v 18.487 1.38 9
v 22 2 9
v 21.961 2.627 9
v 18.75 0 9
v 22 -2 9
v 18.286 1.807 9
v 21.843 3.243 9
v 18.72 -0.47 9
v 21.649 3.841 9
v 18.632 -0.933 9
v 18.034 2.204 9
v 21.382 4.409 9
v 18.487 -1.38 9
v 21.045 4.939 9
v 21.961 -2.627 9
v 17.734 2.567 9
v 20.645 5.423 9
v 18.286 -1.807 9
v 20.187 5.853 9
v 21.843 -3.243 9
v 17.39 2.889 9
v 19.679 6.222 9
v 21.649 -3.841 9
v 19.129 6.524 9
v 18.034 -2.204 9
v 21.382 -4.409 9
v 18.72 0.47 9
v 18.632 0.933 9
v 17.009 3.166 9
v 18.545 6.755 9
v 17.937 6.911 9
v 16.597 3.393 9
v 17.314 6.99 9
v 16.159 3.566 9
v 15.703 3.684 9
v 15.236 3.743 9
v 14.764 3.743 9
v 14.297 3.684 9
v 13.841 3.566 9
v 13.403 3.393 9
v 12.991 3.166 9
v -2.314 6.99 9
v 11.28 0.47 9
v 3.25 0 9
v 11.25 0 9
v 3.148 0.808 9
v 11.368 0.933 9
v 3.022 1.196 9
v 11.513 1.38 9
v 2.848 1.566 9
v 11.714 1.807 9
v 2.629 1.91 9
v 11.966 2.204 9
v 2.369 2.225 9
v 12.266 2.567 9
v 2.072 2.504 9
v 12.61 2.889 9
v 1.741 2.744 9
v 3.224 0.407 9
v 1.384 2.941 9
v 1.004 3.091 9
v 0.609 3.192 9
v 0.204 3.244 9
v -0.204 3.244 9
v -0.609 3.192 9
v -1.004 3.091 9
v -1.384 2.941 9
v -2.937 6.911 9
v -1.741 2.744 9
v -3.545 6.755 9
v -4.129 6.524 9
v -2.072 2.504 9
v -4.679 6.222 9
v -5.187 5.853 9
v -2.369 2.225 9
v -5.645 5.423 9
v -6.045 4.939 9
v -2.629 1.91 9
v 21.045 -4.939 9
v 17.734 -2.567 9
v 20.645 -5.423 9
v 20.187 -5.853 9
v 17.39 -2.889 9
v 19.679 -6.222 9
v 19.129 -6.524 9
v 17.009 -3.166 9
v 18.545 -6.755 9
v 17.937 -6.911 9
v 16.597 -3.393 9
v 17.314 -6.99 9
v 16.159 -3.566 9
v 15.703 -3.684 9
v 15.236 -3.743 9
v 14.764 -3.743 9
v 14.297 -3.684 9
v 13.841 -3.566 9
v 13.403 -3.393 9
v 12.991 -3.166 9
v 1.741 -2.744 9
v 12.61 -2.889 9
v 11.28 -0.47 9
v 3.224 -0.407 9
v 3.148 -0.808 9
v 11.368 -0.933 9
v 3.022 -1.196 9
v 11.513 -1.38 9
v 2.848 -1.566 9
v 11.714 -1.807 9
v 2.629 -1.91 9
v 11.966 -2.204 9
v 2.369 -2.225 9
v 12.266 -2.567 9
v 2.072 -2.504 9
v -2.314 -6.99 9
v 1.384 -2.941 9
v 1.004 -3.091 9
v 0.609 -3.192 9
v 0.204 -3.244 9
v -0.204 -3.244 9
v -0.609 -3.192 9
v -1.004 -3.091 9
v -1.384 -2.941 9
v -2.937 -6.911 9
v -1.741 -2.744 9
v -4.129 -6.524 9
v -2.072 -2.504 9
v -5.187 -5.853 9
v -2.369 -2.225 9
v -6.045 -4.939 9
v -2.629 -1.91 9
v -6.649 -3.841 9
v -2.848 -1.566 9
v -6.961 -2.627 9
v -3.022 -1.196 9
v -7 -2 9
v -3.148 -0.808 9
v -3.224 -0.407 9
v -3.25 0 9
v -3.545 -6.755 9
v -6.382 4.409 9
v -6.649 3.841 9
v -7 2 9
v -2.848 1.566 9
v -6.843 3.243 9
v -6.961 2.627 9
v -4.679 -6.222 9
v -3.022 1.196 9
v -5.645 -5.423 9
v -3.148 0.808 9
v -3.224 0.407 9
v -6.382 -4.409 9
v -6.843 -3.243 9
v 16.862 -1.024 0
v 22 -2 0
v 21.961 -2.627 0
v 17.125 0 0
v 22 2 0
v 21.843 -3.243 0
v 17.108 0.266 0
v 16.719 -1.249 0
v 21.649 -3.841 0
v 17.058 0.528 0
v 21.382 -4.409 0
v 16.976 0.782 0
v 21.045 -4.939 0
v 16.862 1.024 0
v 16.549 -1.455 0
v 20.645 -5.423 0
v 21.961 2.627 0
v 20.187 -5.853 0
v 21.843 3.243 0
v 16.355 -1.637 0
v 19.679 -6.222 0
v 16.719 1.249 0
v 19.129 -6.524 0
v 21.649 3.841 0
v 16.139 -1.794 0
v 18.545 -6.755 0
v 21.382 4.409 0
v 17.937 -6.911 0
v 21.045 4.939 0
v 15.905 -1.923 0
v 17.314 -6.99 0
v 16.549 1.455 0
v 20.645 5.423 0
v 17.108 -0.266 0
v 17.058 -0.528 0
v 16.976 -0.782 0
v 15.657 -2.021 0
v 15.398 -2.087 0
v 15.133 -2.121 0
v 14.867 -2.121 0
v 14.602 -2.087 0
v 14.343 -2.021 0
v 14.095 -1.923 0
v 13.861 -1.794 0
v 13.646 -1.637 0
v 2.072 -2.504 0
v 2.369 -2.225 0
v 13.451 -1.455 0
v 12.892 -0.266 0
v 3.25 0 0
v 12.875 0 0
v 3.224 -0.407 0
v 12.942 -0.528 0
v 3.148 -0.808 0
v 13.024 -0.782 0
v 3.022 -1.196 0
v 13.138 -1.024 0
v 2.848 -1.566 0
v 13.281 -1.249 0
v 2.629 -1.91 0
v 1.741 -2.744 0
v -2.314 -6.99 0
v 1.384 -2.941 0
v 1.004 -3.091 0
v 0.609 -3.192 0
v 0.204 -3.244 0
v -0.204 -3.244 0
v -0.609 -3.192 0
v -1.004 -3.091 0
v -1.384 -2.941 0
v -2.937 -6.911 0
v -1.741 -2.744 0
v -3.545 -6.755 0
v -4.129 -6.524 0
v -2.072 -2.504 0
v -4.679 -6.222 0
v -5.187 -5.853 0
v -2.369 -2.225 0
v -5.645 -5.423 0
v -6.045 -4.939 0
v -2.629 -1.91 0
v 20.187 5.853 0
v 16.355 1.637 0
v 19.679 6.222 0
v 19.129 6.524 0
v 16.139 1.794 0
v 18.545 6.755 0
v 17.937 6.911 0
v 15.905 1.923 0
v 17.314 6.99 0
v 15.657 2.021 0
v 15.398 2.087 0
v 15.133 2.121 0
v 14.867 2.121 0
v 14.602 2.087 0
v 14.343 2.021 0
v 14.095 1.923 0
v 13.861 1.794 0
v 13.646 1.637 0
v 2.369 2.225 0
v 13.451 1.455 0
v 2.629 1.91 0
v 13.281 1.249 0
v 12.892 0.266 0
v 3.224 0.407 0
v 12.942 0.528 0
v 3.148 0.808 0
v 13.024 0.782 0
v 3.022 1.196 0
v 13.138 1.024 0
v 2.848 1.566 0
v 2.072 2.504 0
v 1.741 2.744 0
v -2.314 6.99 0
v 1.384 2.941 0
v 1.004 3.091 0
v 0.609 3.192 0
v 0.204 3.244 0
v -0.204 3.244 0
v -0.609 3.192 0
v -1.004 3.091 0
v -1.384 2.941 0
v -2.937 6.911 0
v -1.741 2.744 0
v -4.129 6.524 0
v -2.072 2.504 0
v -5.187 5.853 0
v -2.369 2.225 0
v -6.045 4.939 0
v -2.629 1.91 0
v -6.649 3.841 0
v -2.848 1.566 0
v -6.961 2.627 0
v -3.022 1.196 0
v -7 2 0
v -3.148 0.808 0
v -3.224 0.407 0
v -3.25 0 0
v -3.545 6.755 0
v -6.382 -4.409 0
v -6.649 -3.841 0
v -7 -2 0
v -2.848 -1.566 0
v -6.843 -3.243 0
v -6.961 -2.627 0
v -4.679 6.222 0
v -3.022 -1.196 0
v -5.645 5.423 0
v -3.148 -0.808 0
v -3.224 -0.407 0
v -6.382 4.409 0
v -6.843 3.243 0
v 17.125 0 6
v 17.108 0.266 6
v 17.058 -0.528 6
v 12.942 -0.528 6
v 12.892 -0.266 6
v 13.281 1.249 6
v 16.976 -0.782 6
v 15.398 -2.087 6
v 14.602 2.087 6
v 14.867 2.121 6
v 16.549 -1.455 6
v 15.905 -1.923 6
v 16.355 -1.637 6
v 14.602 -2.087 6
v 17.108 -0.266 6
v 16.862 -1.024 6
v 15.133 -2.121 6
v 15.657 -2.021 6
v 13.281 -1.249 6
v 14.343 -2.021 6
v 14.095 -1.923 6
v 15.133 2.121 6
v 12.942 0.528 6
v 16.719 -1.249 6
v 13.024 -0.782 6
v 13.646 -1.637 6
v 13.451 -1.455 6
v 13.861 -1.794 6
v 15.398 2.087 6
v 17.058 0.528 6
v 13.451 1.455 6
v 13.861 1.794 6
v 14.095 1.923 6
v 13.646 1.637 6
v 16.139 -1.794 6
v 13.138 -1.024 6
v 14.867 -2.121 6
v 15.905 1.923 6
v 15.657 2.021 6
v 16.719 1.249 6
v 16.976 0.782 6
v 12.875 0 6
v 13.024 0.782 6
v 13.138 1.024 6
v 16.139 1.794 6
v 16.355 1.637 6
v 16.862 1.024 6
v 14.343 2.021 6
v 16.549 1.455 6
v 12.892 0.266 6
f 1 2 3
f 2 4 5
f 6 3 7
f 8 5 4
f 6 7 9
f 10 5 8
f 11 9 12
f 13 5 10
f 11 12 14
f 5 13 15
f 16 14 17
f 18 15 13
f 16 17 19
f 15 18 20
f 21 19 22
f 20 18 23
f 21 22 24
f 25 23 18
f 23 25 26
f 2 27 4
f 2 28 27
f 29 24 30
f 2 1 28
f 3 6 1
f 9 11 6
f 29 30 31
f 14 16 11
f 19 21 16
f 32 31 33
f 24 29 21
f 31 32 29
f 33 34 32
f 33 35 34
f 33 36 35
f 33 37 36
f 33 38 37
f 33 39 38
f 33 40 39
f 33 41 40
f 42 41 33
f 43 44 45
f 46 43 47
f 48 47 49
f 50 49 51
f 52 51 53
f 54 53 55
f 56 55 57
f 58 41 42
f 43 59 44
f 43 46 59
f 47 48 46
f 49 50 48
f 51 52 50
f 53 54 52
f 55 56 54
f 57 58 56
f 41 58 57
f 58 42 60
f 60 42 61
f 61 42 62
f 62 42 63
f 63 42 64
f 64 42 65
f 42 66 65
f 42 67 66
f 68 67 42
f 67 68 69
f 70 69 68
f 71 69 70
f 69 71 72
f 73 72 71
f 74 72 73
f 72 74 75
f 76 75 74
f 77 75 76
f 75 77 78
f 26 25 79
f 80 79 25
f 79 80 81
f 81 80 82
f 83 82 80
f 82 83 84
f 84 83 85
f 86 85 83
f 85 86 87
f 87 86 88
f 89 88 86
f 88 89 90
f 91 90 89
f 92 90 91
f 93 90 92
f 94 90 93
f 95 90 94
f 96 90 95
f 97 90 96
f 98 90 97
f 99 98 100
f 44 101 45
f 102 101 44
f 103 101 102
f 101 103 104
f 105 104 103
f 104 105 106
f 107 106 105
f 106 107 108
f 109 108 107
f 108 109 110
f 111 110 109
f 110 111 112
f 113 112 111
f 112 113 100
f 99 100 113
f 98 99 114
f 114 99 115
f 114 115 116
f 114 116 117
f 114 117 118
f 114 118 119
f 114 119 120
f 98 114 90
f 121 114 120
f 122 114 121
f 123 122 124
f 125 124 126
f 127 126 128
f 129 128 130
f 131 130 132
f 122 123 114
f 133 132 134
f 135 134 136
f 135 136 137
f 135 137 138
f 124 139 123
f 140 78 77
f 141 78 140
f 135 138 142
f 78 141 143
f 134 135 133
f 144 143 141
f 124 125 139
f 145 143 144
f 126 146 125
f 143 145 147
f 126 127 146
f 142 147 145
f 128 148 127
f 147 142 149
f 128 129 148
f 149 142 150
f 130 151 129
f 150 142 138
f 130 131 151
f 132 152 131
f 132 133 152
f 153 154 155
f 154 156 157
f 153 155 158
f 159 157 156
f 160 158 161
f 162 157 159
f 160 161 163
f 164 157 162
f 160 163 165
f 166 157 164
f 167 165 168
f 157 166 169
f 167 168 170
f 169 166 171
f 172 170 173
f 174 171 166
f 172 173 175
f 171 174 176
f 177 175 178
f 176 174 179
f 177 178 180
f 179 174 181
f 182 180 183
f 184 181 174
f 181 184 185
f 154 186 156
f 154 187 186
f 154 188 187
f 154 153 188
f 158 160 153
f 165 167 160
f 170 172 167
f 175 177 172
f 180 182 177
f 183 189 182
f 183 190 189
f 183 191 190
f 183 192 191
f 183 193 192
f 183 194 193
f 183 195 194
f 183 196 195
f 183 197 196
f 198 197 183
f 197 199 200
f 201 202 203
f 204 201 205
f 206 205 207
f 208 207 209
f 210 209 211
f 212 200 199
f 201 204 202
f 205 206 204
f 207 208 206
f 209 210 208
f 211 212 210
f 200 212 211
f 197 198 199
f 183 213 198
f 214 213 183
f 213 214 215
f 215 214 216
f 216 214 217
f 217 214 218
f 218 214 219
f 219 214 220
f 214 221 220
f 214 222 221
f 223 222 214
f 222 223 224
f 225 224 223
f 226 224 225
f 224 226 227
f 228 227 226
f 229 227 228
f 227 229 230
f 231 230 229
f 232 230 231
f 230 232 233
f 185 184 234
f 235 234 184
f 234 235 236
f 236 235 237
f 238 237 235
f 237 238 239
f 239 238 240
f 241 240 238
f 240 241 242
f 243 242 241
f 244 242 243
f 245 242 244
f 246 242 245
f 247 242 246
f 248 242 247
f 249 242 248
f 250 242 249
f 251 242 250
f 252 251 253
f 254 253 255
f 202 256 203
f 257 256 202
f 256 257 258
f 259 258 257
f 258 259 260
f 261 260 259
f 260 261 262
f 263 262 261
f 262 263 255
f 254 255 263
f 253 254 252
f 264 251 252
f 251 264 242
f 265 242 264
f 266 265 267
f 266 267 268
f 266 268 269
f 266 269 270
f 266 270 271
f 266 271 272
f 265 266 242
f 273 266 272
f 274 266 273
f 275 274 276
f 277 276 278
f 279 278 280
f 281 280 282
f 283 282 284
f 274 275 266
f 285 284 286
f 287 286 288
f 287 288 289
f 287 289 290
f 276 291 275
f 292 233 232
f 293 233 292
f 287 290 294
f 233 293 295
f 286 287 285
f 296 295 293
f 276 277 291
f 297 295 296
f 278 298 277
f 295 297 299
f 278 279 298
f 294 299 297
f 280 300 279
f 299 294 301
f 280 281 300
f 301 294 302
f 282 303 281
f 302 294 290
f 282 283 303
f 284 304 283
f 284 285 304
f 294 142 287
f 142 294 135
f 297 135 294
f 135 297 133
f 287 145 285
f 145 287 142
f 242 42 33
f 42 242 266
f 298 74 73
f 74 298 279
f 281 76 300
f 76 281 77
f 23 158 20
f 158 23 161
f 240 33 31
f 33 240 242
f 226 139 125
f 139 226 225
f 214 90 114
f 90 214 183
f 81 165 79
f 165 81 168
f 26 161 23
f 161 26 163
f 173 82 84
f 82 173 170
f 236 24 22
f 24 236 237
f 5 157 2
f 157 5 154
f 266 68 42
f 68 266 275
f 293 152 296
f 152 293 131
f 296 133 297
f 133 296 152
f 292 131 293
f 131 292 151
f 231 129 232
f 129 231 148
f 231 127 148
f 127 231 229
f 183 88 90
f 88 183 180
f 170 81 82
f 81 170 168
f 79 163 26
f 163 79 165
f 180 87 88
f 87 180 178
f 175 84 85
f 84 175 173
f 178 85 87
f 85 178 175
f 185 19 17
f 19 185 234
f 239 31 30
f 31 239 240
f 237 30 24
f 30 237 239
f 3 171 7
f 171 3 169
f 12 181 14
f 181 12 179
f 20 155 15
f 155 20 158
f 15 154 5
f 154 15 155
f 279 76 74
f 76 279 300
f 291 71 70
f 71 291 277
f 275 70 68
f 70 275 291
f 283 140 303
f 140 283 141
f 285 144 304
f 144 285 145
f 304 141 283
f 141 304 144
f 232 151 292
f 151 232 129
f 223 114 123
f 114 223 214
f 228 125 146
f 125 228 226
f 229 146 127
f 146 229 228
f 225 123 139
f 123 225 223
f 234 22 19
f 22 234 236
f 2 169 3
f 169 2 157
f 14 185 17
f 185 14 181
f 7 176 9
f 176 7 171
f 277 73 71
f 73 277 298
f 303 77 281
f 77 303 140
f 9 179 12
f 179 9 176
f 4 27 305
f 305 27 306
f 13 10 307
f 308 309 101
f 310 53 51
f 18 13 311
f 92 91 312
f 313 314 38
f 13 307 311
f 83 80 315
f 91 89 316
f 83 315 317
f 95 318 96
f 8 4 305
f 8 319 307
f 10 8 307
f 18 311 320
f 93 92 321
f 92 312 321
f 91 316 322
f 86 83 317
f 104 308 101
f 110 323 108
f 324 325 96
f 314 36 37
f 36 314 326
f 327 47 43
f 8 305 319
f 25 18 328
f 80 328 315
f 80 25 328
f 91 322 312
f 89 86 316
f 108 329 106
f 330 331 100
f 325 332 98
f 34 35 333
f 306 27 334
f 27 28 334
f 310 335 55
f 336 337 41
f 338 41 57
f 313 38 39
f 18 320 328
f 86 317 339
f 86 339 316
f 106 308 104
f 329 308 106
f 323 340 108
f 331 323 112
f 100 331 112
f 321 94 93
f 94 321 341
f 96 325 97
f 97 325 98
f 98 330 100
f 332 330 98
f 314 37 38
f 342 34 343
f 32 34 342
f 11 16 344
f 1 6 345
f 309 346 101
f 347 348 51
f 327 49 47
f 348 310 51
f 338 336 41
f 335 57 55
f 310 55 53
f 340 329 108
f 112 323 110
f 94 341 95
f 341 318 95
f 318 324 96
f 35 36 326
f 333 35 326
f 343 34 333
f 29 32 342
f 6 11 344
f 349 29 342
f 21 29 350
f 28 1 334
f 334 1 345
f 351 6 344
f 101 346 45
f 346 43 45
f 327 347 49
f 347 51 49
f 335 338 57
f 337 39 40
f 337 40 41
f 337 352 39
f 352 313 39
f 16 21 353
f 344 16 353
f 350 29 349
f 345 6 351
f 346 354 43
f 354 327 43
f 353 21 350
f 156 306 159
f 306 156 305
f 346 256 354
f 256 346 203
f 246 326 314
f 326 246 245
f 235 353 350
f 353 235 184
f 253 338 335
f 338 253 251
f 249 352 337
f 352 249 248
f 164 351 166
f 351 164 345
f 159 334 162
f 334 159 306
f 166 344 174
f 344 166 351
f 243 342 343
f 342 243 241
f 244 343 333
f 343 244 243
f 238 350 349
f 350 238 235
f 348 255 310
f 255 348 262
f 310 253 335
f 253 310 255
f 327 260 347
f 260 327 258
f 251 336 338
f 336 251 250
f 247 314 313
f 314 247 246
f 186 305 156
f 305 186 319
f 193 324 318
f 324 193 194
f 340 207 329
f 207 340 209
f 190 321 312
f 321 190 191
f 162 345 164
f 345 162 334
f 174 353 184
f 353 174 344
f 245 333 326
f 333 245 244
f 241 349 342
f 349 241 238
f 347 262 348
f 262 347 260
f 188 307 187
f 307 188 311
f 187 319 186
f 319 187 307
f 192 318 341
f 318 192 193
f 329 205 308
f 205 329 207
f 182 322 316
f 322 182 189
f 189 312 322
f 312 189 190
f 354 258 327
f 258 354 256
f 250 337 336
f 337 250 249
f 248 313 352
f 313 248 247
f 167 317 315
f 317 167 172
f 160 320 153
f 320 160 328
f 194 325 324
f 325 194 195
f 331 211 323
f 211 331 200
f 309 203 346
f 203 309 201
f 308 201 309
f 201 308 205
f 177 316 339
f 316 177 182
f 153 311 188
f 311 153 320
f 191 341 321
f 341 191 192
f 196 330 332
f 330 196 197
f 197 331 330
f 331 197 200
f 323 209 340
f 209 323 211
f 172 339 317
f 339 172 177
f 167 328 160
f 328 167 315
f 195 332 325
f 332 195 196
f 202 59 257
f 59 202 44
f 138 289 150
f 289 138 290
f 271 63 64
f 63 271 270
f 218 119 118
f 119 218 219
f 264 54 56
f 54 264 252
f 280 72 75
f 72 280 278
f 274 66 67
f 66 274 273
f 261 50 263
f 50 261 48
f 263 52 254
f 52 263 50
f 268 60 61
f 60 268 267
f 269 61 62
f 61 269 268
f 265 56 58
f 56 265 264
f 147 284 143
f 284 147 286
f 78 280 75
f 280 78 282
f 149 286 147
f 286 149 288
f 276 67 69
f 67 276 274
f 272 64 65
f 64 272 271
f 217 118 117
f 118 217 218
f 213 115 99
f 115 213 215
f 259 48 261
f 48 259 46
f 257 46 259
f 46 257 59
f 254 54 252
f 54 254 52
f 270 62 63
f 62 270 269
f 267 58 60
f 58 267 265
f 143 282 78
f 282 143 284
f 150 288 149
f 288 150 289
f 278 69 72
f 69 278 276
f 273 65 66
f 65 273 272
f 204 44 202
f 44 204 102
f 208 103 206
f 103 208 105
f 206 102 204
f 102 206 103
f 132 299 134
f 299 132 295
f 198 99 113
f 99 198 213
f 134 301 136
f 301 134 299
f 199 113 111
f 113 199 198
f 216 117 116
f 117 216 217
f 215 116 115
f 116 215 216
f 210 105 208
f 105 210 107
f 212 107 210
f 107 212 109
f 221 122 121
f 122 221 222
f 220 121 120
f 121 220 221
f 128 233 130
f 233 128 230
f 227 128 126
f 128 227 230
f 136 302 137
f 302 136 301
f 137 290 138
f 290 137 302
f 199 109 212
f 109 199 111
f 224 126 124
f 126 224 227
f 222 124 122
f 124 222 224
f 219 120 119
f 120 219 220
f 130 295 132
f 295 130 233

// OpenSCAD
$fn = 50;


difference() {
	union() {
		cylinder(h = 9, r = 7.0000000000);
		translate(v = [7.5000000000, 0.0000000000, 0]) {
			hull() {
				translate(v = [-9.5000000000, 2.0000000000, 0]) {
					cylinder(h = 9, r = 5);
				}
				translate(v = [9.5000000000, 2.0000000000, 0]) {
					cylinder(h = 9, r = 5);
				}
				translate(v = [-9.5000000000, -2.0000000000, 0]) {
					cylinder(h = 9, r = 5);
				}
				translate(v = [9.5000000000, -2.0000000000, 0]) {
					cylinder(h = 9, r = 5);
				}
			}
		}
		translate(v = [7.5000000000, 0.0000000000, 0]) {
			hull() {
				translate(v = [-9.5000000000, 2.0000000000, 0]) {
					cylinder(h = 9, r = 5);
				}
				translate(v = [9.5000000000, 2.0000000000, 0]) {
					cylinder(h = 9, r = 5);
				}
				translate(v = [-9.5000000000, -2.0000000000, 0]) {
					cylinder(h = 9, r = 5);
				}
				translate(v = [9.5000000000, -2.0000000000, 0]) {
					cylinder(h = 9, r = 5);
				}
			}
		}
	}
	union() {
		translate(v = [15.0000000000, 0.0000000000, 9]) {
			rotate(a = [0, 0, 0]) {
				difference() {
					union() {
						#translate(v = [0, 0, -9.0000000000]) {
							cylinder(h = 9, r = 2.0000000000);
						}
						#translate(v = [0, 0, -3]) {
							cylinder(h = 3, r1 = 2.1250000000, r2 = 3.7500000000);
						}
						#translate(v = [0, 0, -9.0000000000]) {
							cylinder(h = 9, r = 2.1250000000);
						}
						#translate(v = [0, 0, -9.0000000000]) {
							cylinder(h = 9, r = 2.0000000000);
						}
					}
					union();
				}
			}
		}
		translate(v = [15.0000000000, 0.0000000000, 9]) {
			rotate(a = [0, 0, 0]) {
				difference() {
					union() {
						#translate(v = [0, 0, -9.0000000000]) {
							cylinder(h = 9, r = 2.0000000000);
						}
						#translate(v = [0, 0, -3]) {
							cylinder(h = 3, r1 = 2.1250000000, r2 = 3.7500000000);
						}
						#translate(v = [0, 0, -9.0000000000]) {
							cylinder(h = 9, r = 2.1250000000);
						}
						#translate(v = [0, 0, -9.0000000000]) {
							cylinder(h = 9, r = 2.0000000000);
						}
					}
					union();
				}
			}
		}
		translate(v = [0, 0, -100]) {
			cylinder(h = 200, r = 3.2500000000);
		}
		translate(v = [0, 0, -100]) {
			cylinder(h = 200, r = 1.8000000000);
		}
	}
}
